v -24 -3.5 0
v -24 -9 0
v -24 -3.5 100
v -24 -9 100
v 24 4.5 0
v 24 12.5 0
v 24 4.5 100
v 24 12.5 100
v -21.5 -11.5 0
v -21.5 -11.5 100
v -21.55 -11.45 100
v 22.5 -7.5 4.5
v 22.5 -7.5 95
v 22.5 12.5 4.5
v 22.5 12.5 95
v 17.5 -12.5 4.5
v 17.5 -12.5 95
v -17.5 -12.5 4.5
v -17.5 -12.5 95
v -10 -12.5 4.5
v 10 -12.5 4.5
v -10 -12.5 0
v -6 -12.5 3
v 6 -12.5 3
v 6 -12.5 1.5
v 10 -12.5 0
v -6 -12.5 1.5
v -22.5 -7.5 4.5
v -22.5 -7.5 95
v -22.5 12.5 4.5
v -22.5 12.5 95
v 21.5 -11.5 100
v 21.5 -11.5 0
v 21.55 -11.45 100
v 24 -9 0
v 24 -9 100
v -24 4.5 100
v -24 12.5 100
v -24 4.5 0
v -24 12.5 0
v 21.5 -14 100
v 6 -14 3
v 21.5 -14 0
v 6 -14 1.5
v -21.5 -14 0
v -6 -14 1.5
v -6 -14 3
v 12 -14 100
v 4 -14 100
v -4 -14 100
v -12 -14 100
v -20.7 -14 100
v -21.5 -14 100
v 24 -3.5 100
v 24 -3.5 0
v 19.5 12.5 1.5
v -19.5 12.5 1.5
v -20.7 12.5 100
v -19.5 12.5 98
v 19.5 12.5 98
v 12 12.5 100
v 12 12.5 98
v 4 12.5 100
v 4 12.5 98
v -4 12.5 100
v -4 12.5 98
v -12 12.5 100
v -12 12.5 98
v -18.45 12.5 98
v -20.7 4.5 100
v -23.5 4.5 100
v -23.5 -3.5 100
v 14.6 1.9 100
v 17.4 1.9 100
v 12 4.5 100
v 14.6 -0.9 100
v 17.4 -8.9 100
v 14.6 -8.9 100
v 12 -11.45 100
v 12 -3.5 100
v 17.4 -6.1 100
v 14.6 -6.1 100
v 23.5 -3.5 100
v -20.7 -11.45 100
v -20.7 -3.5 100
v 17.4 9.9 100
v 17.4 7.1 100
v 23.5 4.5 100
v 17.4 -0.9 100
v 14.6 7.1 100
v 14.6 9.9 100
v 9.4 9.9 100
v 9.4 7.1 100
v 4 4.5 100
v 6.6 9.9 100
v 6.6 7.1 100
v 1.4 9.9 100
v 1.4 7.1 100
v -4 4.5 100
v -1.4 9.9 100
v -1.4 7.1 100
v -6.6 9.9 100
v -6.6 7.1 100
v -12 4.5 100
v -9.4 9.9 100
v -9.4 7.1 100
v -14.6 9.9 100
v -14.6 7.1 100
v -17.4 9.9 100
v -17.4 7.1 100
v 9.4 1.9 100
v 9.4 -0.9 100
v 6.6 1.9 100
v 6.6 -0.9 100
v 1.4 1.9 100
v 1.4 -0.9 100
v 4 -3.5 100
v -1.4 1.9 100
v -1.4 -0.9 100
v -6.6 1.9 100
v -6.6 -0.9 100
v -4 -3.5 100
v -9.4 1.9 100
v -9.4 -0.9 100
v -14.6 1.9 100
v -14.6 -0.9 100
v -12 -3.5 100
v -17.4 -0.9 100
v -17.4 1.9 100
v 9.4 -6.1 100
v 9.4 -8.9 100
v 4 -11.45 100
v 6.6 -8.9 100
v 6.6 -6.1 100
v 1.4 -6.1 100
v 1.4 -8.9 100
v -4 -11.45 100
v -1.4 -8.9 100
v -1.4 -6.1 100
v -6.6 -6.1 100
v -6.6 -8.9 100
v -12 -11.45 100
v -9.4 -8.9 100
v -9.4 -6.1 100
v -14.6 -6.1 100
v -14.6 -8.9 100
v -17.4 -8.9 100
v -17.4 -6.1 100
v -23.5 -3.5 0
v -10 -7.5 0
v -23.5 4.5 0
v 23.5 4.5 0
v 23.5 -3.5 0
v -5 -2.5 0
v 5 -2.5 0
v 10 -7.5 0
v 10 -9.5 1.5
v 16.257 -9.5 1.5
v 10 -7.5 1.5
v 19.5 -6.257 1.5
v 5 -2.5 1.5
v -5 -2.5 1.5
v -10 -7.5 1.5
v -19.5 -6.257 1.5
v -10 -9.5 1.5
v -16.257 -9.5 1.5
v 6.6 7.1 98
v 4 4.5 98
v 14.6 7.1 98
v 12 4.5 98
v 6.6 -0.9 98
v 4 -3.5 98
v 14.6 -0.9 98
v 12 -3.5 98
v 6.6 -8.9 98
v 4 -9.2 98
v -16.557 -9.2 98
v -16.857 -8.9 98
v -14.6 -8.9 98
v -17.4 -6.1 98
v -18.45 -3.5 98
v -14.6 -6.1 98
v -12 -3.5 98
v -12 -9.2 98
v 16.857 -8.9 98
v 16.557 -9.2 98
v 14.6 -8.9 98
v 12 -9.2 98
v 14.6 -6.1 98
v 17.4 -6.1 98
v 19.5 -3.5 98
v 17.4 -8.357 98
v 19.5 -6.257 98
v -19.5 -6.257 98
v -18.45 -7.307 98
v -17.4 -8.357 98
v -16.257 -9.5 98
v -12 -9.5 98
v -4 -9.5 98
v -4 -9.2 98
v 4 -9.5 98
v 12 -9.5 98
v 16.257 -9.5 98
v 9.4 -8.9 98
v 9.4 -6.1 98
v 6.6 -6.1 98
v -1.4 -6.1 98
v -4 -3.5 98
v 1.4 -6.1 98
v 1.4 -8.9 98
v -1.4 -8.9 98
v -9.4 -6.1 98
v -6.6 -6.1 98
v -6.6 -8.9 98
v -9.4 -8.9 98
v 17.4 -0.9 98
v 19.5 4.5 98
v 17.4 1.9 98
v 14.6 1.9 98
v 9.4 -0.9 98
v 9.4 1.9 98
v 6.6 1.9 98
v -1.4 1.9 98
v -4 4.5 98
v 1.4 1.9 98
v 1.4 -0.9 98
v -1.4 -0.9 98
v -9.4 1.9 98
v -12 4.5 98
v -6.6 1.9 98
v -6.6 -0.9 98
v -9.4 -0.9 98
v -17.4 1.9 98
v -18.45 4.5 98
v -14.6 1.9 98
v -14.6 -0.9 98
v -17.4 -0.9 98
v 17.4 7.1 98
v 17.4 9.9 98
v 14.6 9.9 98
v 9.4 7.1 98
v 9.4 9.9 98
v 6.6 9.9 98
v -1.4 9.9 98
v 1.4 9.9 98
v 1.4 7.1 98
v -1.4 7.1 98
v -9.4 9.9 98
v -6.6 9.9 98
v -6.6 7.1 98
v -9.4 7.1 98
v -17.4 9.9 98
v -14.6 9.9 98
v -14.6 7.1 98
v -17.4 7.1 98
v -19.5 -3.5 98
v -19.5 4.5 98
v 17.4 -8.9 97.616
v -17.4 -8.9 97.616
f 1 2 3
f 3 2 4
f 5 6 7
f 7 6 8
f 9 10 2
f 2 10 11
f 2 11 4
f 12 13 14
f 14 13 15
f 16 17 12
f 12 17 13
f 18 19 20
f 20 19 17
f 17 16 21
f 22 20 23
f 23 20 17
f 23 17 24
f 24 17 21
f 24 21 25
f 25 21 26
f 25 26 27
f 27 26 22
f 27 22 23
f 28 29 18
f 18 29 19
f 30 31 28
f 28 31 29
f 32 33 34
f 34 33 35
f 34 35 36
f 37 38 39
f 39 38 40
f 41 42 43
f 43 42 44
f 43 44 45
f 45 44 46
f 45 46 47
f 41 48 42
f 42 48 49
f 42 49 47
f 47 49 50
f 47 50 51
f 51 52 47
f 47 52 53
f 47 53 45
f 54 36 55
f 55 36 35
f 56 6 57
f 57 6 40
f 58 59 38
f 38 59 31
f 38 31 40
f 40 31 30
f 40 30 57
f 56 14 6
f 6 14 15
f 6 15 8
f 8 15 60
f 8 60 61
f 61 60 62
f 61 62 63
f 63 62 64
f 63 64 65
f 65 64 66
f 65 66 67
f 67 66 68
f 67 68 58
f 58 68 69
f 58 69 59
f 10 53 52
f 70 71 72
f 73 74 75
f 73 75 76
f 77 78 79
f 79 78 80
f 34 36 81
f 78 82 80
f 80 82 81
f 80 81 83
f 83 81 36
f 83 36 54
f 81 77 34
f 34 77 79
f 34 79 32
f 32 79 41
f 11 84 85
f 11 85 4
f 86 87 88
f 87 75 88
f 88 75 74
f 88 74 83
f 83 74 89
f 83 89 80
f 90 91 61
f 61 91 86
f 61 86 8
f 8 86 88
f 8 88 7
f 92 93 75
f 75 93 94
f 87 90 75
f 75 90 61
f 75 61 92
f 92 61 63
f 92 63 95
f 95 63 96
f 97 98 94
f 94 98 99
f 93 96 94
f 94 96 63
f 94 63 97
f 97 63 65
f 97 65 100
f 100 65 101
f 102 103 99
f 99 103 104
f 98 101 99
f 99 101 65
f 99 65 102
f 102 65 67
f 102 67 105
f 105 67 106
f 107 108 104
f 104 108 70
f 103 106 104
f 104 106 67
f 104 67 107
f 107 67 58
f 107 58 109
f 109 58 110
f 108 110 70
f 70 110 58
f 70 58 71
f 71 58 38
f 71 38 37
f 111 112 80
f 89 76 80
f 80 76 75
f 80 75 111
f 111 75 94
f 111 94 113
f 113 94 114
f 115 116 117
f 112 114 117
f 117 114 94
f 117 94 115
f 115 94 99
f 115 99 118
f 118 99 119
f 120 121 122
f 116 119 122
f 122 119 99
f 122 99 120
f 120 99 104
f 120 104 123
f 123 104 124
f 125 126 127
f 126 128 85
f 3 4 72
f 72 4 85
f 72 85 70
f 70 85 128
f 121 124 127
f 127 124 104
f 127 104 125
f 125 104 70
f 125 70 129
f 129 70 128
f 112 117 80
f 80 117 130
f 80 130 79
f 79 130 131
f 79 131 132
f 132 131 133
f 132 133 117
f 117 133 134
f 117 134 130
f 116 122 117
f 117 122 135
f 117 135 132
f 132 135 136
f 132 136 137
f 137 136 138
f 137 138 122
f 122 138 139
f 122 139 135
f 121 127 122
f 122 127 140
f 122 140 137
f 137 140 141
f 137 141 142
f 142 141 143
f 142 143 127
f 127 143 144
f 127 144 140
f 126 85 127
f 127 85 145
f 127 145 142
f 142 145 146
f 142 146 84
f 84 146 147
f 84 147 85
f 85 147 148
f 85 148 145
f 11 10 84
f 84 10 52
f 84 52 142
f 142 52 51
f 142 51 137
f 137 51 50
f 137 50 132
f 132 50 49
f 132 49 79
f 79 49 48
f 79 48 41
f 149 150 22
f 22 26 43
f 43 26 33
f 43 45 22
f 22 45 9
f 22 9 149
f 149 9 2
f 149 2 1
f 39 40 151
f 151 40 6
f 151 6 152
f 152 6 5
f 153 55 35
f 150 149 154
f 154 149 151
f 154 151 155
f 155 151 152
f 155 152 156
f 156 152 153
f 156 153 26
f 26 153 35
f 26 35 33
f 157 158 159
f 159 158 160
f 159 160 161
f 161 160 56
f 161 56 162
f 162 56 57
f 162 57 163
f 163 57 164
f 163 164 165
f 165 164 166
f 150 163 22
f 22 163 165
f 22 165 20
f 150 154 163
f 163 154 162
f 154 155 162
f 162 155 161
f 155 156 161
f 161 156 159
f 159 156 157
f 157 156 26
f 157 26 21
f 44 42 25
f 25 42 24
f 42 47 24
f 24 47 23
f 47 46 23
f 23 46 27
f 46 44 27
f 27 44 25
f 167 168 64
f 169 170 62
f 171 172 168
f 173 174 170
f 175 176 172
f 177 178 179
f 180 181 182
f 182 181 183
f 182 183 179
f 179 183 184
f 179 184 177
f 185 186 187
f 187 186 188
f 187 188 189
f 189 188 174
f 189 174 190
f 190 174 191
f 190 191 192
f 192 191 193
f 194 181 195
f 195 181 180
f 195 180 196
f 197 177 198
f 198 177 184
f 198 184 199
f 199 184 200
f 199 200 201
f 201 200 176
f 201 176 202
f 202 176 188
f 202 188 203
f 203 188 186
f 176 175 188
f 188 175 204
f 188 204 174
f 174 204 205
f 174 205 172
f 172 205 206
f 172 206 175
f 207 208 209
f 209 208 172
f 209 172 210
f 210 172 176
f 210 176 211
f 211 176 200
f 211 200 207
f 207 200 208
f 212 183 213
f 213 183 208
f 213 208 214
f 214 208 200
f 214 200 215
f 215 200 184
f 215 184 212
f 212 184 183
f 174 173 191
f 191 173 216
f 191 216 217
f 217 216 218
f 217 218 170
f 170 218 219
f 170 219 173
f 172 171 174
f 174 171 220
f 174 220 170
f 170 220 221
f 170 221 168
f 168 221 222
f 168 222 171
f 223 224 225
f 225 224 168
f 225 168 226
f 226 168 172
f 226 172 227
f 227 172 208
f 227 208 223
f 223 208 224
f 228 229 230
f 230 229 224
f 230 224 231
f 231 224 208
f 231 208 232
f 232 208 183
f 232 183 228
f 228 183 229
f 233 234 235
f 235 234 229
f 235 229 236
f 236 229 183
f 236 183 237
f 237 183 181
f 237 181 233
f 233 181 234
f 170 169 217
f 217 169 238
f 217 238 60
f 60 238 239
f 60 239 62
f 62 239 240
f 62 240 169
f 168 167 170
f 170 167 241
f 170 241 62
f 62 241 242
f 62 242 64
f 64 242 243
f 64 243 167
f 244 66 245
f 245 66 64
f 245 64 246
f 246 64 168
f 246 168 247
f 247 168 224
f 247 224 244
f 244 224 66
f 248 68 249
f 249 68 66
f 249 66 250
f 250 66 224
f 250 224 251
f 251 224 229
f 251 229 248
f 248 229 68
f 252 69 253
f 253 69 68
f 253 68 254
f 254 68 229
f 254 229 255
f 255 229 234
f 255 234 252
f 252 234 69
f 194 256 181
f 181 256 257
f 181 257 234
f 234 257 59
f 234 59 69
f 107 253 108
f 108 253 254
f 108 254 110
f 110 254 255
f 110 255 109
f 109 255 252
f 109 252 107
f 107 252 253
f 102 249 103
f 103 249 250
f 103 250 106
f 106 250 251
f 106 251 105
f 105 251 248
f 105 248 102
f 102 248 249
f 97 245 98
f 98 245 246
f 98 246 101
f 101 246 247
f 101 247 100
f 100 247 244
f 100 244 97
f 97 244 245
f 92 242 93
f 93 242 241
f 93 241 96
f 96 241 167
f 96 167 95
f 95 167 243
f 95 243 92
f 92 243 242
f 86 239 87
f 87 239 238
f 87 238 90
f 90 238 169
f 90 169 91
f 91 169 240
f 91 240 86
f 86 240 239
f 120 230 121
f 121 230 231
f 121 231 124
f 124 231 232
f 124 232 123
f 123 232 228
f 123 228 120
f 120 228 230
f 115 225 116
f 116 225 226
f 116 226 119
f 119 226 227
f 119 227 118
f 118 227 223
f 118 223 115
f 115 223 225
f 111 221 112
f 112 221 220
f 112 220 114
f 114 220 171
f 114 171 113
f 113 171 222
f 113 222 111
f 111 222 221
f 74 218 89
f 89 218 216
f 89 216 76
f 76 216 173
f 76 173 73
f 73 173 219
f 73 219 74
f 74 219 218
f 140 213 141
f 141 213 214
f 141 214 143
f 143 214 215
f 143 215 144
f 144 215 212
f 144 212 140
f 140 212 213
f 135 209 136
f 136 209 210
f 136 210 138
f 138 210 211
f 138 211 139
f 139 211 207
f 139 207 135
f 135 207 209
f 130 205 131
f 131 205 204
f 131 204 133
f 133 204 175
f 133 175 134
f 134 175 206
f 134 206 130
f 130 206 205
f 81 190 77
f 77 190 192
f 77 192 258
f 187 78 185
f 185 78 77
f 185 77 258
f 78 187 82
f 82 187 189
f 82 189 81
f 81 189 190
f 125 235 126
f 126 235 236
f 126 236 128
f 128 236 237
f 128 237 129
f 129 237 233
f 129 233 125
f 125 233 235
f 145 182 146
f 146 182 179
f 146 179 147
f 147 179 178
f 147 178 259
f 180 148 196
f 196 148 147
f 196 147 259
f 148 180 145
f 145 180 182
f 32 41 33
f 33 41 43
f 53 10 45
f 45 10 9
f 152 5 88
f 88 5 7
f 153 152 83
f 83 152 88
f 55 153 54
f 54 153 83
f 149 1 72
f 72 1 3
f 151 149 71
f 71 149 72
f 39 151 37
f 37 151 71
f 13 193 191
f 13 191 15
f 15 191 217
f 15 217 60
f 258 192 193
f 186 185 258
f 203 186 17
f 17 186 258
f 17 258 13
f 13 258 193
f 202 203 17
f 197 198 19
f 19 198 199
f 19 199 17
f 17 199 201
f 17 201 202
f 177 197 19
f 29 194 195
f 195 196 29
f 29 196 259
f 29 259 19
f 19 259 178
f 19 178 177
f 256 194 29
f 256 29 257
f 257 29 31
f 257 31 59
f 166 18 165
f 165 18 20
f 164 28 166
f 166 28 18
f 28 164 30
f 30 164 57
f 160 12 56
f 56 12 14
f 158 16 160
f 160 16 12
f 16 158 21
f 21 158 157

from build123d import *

# Parameters (mm, degrees)
RESSALTO_EXTRUS_O1_DEPTH = 100
RESSALTO_EXTRUS_O3_REACH = 107.835
ESBO_O3_W                = 45
ESBO_O3_H                = 1.5
CORTE_EXTRUS_O1_DEPTH    = 103.343783397
ESBO_O5_W                = 12
ESBO_O5_H                = 1.5
CORTE_EXTRUS_O2_DEPTH    = 106.834776893
ESBO_O6_W                = 45
ESBO_O6_H                = 2
RESSALTO_EXTRUS_O4_DEPTH = 25
ESBO_O7_W                = 2.8
ESBO_O7_H                = 2.8
CORTE_EXTRUS_O3_DEPTH    = 10
CORTE_EXTRUS_O4_DEPTH    = 104.788245963
RESSALTO_EXTRUS_O5_DEPTH = 100
ESBO_O10_W               = 0.5
ESBO_O10_H               = 8
CORTE_EXTRUS_O5_DEPTH    = 104.788245963
CHANFRO1_SIZE            = 3
CHANFRO2_SIZE            = 3


with BuildPart() as part:
    # Esboço1 → Ressalto-extrusão1 (new body)
    with BuildSketch(Plane.XY):
        Polygon((-22.5, 12.5), (-22.5, -7.5), (-17.5, -12.5), (17.5, -12.5), (22.5, -7.5), (22.5, 12.5), (24, 12.5), (24, -9), (19, -14), (-19, -14), (-24, -9), (-24, 12.5), align=None)
    extrude(amount=RESSALTO_EXTRUS_O1_DEPTH)

    # Ressalto-extrusão3: up to this face of the body (flat: up to its plane)
    ressalto_extrus_o3_end = Plane(part.part.faces().sort_by_distance((-23.25, 12.5, 50))[0])
    # Esboço3 → Ressalto-extrusão3 (add, up to the picked face)
    with BuildSketch(Plane(origin=(0, -12.5, 0), x_dir=(1, 0, 0), z_dir=(0, 1, 0)), mode=Mode.PRIVATE) as ressalto_extrus_o3_sk1:
        with Locations((0, -0.75)):
            Rectangle(ESBO_O3_W, ESBO_O3_H)
    ressalto_extrus_o3_tool1 = split(extrude(ressalto_extrus_o3_sk1.sketch, amount=RESSALTO_EXTRUS_O3_REACH, mode=Mode.PRIVATE), bisect_by=ressalto_extrus_o3_end, keep=Keep.BOTH, mode=Mode.PRIVATE)
    add(ressalto_extrus_o3_tool1.solids().sort_by(Axis((0, -12.5, 0.75), (0, 1, 0)))[0])

    # Esboço4 → Corte-extrusão1 (cut, through all)
    with BuildSketch(Plane.XY.offset(1.5)):
        Polygon((-10, -12.5), (10, -12.5), (10, -7.5), (5, -2.5), (-5, -2.5), (-10, -7.5), align=None)
    extrude(amount=-CORTE_EXTRUS_O1_DEPTH, mode=Mode.SUBTRACT)

    # Esboço5 → Corte-extrusão2 (cut, through all)
    with BuildSketch(Plane(origin=(0, -12.5, 0), x_dir=(1, 0, 0), z_dir=(0, 1, 0))):
        with Locations((0, -2.25)):
            Rectangle(ESBO_O5_W, ESBO_O5_H)
    extrude(amount=-CORTE_EXTRUS_O2_DEPTH, mode=Mode.SUBTRACT)

    # Esboço6 → Ressalto-extrusão4 (add)
    with BuildSketch(Plane(origin=(0, -12.5, 0), x_dir=(1, 0, 0), z_dir=(0, 1, 0))):
        with Locations((0, -99)):
            Rectangle(ESBO_O6_W, ESBO_O6_H)
    extrude(amount=RESSALTO_EXTRUS_O4_DEPTH)

    # Esboço7 → Corte-extrusão3 (cut)
    with BuildSketch(Plane.XY.offset(100)):
        with Locations((-8, 8.5)):
            Rectangle(ESBO_O7_W, ESBO_O7_H)
        with Locations((-16, 8.5)):
            Rectangle(ESBO_O7_W, ESBO_O7_H)
        with Locations((0, 8.5)):
            Rectangle(ESBO_O7_W, ESBO_O7_H)
        with Locations((8, 8.5)):
            Rectangle(ESBO_O7_W, ESBO_O7_H)
        with Locations((16, 8.5)):
            Rectangle(ESBO_O7_W, ESBO_O7_H)
        with Locations((-8, 0.5)):
            Rectangle(ESBO_O7_W, ESBO_O7_H)
        with Locations((0, 0.5)):
            Rectangle(ESBO_O7_W, ESBO_O7_H)
        with Locations((8, 0.5)):
            Rectangle(ESBO_O7_W, ESBO_O7_H)
        with Locations((16, 0.5)):
            Rectangle(ESBO_O7_W, ESBO_O7_H)
        with Locations((-8, -7.5)):
            Rectangle(ESBO_O7_W, ESBO_O7_H)
        with Locations((0, -7.5)):
            Rectangle(ESBO_O7_W, ESBO_O7_H)
        with Locations((8, -7.5)):
            Rectangle(ESBO_O7_W, ESBO_O7_H)
        with Locations((16, -7.5)):
            Rectangle(ESBO_O7_W, ESBO_O7_H)
        with Locations((-16, 0.5)):
            Rectangle(ESBO_O7_W, ESBO_O7_H)
        with Locations((-16, -7.5)):
            Rectangle(ESBO_O7_W, ESBO_O7_H)
    extrude(amount=-CORTE_EXTRUS_O3_DEPTH, mode=Mode.SUBTRACT)

    # Esboço8 → Corte-extrusão4 (cut, through all)
    with BuildSketch(Plane(origin=(0, 0, 0), x_dir=(-1, 0, 0), z_dir=(0, 0, -1))):
        Polygon((-22.5, -10.5), (-22.5, -12.5), (-20.5, -12.5), align=None)
        Polygon((20.5, -12.5), (22.5, -12.5), (22.5, -10.5), align=None)
    extrude(amount=-CORTE_EXTRUS_O4_DEPTH, mode=Mode.SUBTRACT)

    # Esboço9 → Ressalto-extrusão5 (add, through all)
    with BuildSketch(Plane(origin=(0, 0, 0), x_dir=(-1, 0, 0), z_dir=(0, 0, -1))):
        Polygon((-19, -14), (-21.5, -14), (-21.5, -11.5), align=None)
        Polygon((19, -14), (21.5, -14), (21.5, -11.5), align=None)
    extrude(amount=-RESSALTO_EXTRUS_O5_DEPTH)

    # Esboço10 → Corte-extrusão5 (cut, through all)
    with BuildSketch(Plane(origin=(0, 0, 0), x_dir=(-1, 0, 0), z_dir=(0, 0, -1))):
        with Locations((-23.75, 0.5)):
            Rectangle(ESBO_O10_W, ESBO_O10_H)
        with Locations((23.75, 0.5)):
            Rectangle(ESBO_O10_W, ESBO_O10_H)
    extrude(amount=-CORTE_EXTRUS_O5_DEPTH, mode=Mode.SUBTRACT)

    # Chanfro1
    # the kernel refuses this chamfer: 3 mm, written as the material it adds along each edge
    with BuildSketch(Plane(origin=(22.5, -15.215048964, 98), x_dir=(0.027495876610586768, 0, -0.9996219169112968), z_dir=(0, 1, 0))) as chanfro1_piece_1_section:
        Polygon((CHANFRO1_SIZE * 0.999621916911, CHANFRO1_SIZE * 0.0274958766106), (-CHANFRO1_SIZE * 0.0274958766106, CHANFRO1_SIZE * 0.999621916911), (0, 0), align=None)
    chanfro1_piece_1 = extrude(amount=27.715048964, mode=Mode.PRIVATE)
    chanfro1_piece_1 = split(chanfro1_piece_1, bisect_by=Plane(origin=(27.146986971, -2.853013029, 96.73534202), z_dir=(-0.7071067811865475, 0.7071067811865476, 0)), keep=Keep.TOP, mode=Mode.PRIVATE)
    add(chanfro1_piece_1)
    with BuildSketch(Plane(origin=(12.04463656, -17.95536344, 98), x_dir=(-0.7068394360706735, 0.7068394360706735, 0.027495876610586778), z_dir=(0.7071067811865476, 0.7071067811865475, 0))) as chanfro1_piece_2_section:
        Polygon((CHANFRO1_SIZE * 0.999621916911, -CHANFRO1_SIZE * 0.0274958766106), (-CHANFRO1_SIZE * 0.0274958766106, -CHANFRO1_SIZE * 0.999621916911), (0, 0), align=None)
    chanfro1_piece_2 = extrude(amount=22.50116574, mode=Mode.PRIVATE)
    chanfro1_piece_2 = split(chanfro1_piece_2, bisect_by=Plane(origin=(16.362312496, -12.5, 97.266244129), z_dir=(0, 1, 0)), keep=Keep.TOP, mode=Mode.PRIVATE)
    chanfro1_piece_2 = split(chanfro1_piece_2, bisect_by=Plane(origin=(16.362312496, -8.9, 97.266244129), z_dir=(0, -1, 0)), keep=Keep.TOP, mode=Mode.PRIVATE)
    add(chanfro1_piece_2)
    with BuildSketch(Plane(origin=(12.04463656, -17.95536344, 98), x_dir=(-0.7068394360706735, 0.7068394360706735, 0.027495876610586778), z_dir=(0.7071067811865476, 0.7071067811865475, 0))) as chanfro1_piece_3_section:
        Polygon((CHANFRO1_SIZE * 0.999621916911, -CHANFRO1_SIZE * 0.0274958766106), (-CHANFRO1_SIZE * 0.0274958766106, -CHANFRO1_SIZE * 0.999621916911), (0, 0), align=None)
    chanfro1_piece_3 = extrude(amount=22.50116574, mode=Mode.PRIVATE)
    chanfro1_piece_3 = split(chanfro1_piece_3, bisect_by=Plane(origin=(22.5, -7.314063038, 97.124733651), z_dir=(-1, 0, 0)), keep=Keep.TOP, mode=Mode.PRIVATE)
    chanfro1_piece_3 = split(chanfro1_piece_3, bisect_by=Plane(origin=(17.4, -7.314063038, 97.124733651), z_dir=(1, 0, 0)), keep=Keep.TOP, mode=Mode.PRIVATE)
    add(chanfro1_piece_3)
    with BuildSketch(Plane(origin=(25.215048964, -12.5, 98), x_dir=(0, -0.02749587661058619, -0.9996219169112968), z_dir=(-1, 0, 0))) as chanfro1_piece_4_section:
        Polygon((CHANFRO1_SIZE * 0.999621916911, -CHANFRO1_SIZE * 0.0274958766106), (-CHANFRO1_SIZE * 0.0274958766106, -CHANFRO1_SIZE * 0.999621916911), (0, 0), align=None)
    chanfro1_piece_4 = extrude(amount=50.430097928, mode=Mode.PRIVATE)
    chanfro1_piece_4 = split(chanfro1_piece_4, bisect_by=Plane(origin=(-9.263513514, -20.736486486, 97.013513514), z_dir=(0.7071067811865475, 0.7071067811865476, 0)), keep=Keep.TOP, mode=Mode.PRIVATE)
    chanfro1_piece_4 = split(chanfro1_piece_4, bisect_by=Plane(origin=(9.263513514, -20.736486486, 97.013513514), z_dir=(-0.7071067811865475, 0.7071067811865476, 0)), keep=Keep.TOP, mode=Mode.PRIVATE)
    add(chanfro1_piece_4)
    with BuildSketch(Plane(origin=(-27.95536344, -2.04463656, 98), x_dir=(0.7068394360706733, 0.7068394360706736, 0.027495876610586757), z_dir=(0.7071067811865476, -0.7071067811865475, 0))) as chanfro1_piece_5_section:
        Polygon((CHANFRO1_SIZE * 0.999621916911, -CHANFRO1_SIZE * 0.0274958766106), (-CHANFRO1_SIZE * 0.0274958766106, -CHANFRO1_SIZE * 0.999621916911), (0, 0), align=None)
    chanfro1_piece_5 = extrude(amount=22.50116574, mode=Mode.PRIVATE)
    chanfro1_piece_5 = split(chanfro1_piece_5, bisect_by=Plane(origin=(-22.5, -3.439339828, 97.957106781), z_dir=(1, 0, 0)), keep=Keep.TOP, mode=Mode.PRIVATE)
    chanfro1_piece_5 = split(chanfro1_piece_5, bisect_by=Plane(origin=(-17.4, -3.439339828, 97.957106781), z_dir=(-1, 0, 0)), keep=Keep.TOP, mode=Mode.PRIVATE)
    add(chanfro1_piece_5)
    with BuildSketch(Plane(origin=(-27.95536344, -2.04463656, 98), x_dir=(0.7068394360706733, 0.7068394360706736, 0.027495876610586757), z_dir=(0.7071067811865476, -0.7071067811865475, 0))) as chanfro1_piece_6_section:
        Polygon((CHANFRO1_SIZE * 0.999621916911, -CHANFRO1_SIZE * 0.0274958766106), (-CHANFRO1_SIZE * 0.0274958766106, -CHANFRO1_SIZE * 0.999621916911), (0, 0), align=None)
    chanfro1_piece_6 = extrude(amount=22.50116574, mode=Mode.PRIVATE)
    chanfro1_piece_6 = split(chanfro1_piece_6, bisect_by=Plane(origin=(-16.362312496, -12.5, 97.266244129), z_dir=(0, 1, 0)), keep=Keep.TOP, mode=Mode.PRIVATE)
    chanfro1_piece_6 = split(chanfro1_piece_6, bisect_by=Plane(origin=(-16.362312496, -8.9, 97.266244129), z_dir=(0, -1, 0)), keep=Keep.TOP, mode=Mode.PRIVATE)
    add(chanfro1_piece_6)
    with BuildSketch(Plane(origin=(-22.5, -15.215048964, 98), x_dir=(-0.027495876610586768, 0, -0.9996219169112968), z_dir=(0, 1, 0))) as chanfro1_piece_7_section:
        Polygon((CHANFRO1_SIZE * 0.999621916911, -CHANFRO1_SIZE * 0.0274958766106), (-CHANFRO1_SIZE * 0.0274958766106, -CHANFRO1_SIZE * 0.999621916911), (0, 0), align=None)
    chanfro1_piece_7 = extrude(amount=27.715048964, mode=Mode.PRIVATE)
    chanfro1_piece_7 = split(chanfro1_piece_7, bisect_by=Plane(origin=(-27.146986971, -2.853013029, 96.73534202), z_dir=(0.7071067811865475, 0.7071067811865476, 0)), keep=Keep.TOP, mode=Mode.PRIVATE)
    add(chanfro1_piece_7)

    # Chanfro2
    chanfro2_edges = [part.edges().sort_by_distance(p)[0] for p in [
        (-13.75, -12.5, 1.5),
        (20, -10, 1.5),
        (-22.5, 2.5, 1.5),
        (-20, -10, 1.5),
        (22.5, 2.5, 1.5),
        (13.75, -12.5, 1.5),
    ]]
    chamfer(chanfro2_edges, length=CHANFRO2_SIZE)


solid = part.part
